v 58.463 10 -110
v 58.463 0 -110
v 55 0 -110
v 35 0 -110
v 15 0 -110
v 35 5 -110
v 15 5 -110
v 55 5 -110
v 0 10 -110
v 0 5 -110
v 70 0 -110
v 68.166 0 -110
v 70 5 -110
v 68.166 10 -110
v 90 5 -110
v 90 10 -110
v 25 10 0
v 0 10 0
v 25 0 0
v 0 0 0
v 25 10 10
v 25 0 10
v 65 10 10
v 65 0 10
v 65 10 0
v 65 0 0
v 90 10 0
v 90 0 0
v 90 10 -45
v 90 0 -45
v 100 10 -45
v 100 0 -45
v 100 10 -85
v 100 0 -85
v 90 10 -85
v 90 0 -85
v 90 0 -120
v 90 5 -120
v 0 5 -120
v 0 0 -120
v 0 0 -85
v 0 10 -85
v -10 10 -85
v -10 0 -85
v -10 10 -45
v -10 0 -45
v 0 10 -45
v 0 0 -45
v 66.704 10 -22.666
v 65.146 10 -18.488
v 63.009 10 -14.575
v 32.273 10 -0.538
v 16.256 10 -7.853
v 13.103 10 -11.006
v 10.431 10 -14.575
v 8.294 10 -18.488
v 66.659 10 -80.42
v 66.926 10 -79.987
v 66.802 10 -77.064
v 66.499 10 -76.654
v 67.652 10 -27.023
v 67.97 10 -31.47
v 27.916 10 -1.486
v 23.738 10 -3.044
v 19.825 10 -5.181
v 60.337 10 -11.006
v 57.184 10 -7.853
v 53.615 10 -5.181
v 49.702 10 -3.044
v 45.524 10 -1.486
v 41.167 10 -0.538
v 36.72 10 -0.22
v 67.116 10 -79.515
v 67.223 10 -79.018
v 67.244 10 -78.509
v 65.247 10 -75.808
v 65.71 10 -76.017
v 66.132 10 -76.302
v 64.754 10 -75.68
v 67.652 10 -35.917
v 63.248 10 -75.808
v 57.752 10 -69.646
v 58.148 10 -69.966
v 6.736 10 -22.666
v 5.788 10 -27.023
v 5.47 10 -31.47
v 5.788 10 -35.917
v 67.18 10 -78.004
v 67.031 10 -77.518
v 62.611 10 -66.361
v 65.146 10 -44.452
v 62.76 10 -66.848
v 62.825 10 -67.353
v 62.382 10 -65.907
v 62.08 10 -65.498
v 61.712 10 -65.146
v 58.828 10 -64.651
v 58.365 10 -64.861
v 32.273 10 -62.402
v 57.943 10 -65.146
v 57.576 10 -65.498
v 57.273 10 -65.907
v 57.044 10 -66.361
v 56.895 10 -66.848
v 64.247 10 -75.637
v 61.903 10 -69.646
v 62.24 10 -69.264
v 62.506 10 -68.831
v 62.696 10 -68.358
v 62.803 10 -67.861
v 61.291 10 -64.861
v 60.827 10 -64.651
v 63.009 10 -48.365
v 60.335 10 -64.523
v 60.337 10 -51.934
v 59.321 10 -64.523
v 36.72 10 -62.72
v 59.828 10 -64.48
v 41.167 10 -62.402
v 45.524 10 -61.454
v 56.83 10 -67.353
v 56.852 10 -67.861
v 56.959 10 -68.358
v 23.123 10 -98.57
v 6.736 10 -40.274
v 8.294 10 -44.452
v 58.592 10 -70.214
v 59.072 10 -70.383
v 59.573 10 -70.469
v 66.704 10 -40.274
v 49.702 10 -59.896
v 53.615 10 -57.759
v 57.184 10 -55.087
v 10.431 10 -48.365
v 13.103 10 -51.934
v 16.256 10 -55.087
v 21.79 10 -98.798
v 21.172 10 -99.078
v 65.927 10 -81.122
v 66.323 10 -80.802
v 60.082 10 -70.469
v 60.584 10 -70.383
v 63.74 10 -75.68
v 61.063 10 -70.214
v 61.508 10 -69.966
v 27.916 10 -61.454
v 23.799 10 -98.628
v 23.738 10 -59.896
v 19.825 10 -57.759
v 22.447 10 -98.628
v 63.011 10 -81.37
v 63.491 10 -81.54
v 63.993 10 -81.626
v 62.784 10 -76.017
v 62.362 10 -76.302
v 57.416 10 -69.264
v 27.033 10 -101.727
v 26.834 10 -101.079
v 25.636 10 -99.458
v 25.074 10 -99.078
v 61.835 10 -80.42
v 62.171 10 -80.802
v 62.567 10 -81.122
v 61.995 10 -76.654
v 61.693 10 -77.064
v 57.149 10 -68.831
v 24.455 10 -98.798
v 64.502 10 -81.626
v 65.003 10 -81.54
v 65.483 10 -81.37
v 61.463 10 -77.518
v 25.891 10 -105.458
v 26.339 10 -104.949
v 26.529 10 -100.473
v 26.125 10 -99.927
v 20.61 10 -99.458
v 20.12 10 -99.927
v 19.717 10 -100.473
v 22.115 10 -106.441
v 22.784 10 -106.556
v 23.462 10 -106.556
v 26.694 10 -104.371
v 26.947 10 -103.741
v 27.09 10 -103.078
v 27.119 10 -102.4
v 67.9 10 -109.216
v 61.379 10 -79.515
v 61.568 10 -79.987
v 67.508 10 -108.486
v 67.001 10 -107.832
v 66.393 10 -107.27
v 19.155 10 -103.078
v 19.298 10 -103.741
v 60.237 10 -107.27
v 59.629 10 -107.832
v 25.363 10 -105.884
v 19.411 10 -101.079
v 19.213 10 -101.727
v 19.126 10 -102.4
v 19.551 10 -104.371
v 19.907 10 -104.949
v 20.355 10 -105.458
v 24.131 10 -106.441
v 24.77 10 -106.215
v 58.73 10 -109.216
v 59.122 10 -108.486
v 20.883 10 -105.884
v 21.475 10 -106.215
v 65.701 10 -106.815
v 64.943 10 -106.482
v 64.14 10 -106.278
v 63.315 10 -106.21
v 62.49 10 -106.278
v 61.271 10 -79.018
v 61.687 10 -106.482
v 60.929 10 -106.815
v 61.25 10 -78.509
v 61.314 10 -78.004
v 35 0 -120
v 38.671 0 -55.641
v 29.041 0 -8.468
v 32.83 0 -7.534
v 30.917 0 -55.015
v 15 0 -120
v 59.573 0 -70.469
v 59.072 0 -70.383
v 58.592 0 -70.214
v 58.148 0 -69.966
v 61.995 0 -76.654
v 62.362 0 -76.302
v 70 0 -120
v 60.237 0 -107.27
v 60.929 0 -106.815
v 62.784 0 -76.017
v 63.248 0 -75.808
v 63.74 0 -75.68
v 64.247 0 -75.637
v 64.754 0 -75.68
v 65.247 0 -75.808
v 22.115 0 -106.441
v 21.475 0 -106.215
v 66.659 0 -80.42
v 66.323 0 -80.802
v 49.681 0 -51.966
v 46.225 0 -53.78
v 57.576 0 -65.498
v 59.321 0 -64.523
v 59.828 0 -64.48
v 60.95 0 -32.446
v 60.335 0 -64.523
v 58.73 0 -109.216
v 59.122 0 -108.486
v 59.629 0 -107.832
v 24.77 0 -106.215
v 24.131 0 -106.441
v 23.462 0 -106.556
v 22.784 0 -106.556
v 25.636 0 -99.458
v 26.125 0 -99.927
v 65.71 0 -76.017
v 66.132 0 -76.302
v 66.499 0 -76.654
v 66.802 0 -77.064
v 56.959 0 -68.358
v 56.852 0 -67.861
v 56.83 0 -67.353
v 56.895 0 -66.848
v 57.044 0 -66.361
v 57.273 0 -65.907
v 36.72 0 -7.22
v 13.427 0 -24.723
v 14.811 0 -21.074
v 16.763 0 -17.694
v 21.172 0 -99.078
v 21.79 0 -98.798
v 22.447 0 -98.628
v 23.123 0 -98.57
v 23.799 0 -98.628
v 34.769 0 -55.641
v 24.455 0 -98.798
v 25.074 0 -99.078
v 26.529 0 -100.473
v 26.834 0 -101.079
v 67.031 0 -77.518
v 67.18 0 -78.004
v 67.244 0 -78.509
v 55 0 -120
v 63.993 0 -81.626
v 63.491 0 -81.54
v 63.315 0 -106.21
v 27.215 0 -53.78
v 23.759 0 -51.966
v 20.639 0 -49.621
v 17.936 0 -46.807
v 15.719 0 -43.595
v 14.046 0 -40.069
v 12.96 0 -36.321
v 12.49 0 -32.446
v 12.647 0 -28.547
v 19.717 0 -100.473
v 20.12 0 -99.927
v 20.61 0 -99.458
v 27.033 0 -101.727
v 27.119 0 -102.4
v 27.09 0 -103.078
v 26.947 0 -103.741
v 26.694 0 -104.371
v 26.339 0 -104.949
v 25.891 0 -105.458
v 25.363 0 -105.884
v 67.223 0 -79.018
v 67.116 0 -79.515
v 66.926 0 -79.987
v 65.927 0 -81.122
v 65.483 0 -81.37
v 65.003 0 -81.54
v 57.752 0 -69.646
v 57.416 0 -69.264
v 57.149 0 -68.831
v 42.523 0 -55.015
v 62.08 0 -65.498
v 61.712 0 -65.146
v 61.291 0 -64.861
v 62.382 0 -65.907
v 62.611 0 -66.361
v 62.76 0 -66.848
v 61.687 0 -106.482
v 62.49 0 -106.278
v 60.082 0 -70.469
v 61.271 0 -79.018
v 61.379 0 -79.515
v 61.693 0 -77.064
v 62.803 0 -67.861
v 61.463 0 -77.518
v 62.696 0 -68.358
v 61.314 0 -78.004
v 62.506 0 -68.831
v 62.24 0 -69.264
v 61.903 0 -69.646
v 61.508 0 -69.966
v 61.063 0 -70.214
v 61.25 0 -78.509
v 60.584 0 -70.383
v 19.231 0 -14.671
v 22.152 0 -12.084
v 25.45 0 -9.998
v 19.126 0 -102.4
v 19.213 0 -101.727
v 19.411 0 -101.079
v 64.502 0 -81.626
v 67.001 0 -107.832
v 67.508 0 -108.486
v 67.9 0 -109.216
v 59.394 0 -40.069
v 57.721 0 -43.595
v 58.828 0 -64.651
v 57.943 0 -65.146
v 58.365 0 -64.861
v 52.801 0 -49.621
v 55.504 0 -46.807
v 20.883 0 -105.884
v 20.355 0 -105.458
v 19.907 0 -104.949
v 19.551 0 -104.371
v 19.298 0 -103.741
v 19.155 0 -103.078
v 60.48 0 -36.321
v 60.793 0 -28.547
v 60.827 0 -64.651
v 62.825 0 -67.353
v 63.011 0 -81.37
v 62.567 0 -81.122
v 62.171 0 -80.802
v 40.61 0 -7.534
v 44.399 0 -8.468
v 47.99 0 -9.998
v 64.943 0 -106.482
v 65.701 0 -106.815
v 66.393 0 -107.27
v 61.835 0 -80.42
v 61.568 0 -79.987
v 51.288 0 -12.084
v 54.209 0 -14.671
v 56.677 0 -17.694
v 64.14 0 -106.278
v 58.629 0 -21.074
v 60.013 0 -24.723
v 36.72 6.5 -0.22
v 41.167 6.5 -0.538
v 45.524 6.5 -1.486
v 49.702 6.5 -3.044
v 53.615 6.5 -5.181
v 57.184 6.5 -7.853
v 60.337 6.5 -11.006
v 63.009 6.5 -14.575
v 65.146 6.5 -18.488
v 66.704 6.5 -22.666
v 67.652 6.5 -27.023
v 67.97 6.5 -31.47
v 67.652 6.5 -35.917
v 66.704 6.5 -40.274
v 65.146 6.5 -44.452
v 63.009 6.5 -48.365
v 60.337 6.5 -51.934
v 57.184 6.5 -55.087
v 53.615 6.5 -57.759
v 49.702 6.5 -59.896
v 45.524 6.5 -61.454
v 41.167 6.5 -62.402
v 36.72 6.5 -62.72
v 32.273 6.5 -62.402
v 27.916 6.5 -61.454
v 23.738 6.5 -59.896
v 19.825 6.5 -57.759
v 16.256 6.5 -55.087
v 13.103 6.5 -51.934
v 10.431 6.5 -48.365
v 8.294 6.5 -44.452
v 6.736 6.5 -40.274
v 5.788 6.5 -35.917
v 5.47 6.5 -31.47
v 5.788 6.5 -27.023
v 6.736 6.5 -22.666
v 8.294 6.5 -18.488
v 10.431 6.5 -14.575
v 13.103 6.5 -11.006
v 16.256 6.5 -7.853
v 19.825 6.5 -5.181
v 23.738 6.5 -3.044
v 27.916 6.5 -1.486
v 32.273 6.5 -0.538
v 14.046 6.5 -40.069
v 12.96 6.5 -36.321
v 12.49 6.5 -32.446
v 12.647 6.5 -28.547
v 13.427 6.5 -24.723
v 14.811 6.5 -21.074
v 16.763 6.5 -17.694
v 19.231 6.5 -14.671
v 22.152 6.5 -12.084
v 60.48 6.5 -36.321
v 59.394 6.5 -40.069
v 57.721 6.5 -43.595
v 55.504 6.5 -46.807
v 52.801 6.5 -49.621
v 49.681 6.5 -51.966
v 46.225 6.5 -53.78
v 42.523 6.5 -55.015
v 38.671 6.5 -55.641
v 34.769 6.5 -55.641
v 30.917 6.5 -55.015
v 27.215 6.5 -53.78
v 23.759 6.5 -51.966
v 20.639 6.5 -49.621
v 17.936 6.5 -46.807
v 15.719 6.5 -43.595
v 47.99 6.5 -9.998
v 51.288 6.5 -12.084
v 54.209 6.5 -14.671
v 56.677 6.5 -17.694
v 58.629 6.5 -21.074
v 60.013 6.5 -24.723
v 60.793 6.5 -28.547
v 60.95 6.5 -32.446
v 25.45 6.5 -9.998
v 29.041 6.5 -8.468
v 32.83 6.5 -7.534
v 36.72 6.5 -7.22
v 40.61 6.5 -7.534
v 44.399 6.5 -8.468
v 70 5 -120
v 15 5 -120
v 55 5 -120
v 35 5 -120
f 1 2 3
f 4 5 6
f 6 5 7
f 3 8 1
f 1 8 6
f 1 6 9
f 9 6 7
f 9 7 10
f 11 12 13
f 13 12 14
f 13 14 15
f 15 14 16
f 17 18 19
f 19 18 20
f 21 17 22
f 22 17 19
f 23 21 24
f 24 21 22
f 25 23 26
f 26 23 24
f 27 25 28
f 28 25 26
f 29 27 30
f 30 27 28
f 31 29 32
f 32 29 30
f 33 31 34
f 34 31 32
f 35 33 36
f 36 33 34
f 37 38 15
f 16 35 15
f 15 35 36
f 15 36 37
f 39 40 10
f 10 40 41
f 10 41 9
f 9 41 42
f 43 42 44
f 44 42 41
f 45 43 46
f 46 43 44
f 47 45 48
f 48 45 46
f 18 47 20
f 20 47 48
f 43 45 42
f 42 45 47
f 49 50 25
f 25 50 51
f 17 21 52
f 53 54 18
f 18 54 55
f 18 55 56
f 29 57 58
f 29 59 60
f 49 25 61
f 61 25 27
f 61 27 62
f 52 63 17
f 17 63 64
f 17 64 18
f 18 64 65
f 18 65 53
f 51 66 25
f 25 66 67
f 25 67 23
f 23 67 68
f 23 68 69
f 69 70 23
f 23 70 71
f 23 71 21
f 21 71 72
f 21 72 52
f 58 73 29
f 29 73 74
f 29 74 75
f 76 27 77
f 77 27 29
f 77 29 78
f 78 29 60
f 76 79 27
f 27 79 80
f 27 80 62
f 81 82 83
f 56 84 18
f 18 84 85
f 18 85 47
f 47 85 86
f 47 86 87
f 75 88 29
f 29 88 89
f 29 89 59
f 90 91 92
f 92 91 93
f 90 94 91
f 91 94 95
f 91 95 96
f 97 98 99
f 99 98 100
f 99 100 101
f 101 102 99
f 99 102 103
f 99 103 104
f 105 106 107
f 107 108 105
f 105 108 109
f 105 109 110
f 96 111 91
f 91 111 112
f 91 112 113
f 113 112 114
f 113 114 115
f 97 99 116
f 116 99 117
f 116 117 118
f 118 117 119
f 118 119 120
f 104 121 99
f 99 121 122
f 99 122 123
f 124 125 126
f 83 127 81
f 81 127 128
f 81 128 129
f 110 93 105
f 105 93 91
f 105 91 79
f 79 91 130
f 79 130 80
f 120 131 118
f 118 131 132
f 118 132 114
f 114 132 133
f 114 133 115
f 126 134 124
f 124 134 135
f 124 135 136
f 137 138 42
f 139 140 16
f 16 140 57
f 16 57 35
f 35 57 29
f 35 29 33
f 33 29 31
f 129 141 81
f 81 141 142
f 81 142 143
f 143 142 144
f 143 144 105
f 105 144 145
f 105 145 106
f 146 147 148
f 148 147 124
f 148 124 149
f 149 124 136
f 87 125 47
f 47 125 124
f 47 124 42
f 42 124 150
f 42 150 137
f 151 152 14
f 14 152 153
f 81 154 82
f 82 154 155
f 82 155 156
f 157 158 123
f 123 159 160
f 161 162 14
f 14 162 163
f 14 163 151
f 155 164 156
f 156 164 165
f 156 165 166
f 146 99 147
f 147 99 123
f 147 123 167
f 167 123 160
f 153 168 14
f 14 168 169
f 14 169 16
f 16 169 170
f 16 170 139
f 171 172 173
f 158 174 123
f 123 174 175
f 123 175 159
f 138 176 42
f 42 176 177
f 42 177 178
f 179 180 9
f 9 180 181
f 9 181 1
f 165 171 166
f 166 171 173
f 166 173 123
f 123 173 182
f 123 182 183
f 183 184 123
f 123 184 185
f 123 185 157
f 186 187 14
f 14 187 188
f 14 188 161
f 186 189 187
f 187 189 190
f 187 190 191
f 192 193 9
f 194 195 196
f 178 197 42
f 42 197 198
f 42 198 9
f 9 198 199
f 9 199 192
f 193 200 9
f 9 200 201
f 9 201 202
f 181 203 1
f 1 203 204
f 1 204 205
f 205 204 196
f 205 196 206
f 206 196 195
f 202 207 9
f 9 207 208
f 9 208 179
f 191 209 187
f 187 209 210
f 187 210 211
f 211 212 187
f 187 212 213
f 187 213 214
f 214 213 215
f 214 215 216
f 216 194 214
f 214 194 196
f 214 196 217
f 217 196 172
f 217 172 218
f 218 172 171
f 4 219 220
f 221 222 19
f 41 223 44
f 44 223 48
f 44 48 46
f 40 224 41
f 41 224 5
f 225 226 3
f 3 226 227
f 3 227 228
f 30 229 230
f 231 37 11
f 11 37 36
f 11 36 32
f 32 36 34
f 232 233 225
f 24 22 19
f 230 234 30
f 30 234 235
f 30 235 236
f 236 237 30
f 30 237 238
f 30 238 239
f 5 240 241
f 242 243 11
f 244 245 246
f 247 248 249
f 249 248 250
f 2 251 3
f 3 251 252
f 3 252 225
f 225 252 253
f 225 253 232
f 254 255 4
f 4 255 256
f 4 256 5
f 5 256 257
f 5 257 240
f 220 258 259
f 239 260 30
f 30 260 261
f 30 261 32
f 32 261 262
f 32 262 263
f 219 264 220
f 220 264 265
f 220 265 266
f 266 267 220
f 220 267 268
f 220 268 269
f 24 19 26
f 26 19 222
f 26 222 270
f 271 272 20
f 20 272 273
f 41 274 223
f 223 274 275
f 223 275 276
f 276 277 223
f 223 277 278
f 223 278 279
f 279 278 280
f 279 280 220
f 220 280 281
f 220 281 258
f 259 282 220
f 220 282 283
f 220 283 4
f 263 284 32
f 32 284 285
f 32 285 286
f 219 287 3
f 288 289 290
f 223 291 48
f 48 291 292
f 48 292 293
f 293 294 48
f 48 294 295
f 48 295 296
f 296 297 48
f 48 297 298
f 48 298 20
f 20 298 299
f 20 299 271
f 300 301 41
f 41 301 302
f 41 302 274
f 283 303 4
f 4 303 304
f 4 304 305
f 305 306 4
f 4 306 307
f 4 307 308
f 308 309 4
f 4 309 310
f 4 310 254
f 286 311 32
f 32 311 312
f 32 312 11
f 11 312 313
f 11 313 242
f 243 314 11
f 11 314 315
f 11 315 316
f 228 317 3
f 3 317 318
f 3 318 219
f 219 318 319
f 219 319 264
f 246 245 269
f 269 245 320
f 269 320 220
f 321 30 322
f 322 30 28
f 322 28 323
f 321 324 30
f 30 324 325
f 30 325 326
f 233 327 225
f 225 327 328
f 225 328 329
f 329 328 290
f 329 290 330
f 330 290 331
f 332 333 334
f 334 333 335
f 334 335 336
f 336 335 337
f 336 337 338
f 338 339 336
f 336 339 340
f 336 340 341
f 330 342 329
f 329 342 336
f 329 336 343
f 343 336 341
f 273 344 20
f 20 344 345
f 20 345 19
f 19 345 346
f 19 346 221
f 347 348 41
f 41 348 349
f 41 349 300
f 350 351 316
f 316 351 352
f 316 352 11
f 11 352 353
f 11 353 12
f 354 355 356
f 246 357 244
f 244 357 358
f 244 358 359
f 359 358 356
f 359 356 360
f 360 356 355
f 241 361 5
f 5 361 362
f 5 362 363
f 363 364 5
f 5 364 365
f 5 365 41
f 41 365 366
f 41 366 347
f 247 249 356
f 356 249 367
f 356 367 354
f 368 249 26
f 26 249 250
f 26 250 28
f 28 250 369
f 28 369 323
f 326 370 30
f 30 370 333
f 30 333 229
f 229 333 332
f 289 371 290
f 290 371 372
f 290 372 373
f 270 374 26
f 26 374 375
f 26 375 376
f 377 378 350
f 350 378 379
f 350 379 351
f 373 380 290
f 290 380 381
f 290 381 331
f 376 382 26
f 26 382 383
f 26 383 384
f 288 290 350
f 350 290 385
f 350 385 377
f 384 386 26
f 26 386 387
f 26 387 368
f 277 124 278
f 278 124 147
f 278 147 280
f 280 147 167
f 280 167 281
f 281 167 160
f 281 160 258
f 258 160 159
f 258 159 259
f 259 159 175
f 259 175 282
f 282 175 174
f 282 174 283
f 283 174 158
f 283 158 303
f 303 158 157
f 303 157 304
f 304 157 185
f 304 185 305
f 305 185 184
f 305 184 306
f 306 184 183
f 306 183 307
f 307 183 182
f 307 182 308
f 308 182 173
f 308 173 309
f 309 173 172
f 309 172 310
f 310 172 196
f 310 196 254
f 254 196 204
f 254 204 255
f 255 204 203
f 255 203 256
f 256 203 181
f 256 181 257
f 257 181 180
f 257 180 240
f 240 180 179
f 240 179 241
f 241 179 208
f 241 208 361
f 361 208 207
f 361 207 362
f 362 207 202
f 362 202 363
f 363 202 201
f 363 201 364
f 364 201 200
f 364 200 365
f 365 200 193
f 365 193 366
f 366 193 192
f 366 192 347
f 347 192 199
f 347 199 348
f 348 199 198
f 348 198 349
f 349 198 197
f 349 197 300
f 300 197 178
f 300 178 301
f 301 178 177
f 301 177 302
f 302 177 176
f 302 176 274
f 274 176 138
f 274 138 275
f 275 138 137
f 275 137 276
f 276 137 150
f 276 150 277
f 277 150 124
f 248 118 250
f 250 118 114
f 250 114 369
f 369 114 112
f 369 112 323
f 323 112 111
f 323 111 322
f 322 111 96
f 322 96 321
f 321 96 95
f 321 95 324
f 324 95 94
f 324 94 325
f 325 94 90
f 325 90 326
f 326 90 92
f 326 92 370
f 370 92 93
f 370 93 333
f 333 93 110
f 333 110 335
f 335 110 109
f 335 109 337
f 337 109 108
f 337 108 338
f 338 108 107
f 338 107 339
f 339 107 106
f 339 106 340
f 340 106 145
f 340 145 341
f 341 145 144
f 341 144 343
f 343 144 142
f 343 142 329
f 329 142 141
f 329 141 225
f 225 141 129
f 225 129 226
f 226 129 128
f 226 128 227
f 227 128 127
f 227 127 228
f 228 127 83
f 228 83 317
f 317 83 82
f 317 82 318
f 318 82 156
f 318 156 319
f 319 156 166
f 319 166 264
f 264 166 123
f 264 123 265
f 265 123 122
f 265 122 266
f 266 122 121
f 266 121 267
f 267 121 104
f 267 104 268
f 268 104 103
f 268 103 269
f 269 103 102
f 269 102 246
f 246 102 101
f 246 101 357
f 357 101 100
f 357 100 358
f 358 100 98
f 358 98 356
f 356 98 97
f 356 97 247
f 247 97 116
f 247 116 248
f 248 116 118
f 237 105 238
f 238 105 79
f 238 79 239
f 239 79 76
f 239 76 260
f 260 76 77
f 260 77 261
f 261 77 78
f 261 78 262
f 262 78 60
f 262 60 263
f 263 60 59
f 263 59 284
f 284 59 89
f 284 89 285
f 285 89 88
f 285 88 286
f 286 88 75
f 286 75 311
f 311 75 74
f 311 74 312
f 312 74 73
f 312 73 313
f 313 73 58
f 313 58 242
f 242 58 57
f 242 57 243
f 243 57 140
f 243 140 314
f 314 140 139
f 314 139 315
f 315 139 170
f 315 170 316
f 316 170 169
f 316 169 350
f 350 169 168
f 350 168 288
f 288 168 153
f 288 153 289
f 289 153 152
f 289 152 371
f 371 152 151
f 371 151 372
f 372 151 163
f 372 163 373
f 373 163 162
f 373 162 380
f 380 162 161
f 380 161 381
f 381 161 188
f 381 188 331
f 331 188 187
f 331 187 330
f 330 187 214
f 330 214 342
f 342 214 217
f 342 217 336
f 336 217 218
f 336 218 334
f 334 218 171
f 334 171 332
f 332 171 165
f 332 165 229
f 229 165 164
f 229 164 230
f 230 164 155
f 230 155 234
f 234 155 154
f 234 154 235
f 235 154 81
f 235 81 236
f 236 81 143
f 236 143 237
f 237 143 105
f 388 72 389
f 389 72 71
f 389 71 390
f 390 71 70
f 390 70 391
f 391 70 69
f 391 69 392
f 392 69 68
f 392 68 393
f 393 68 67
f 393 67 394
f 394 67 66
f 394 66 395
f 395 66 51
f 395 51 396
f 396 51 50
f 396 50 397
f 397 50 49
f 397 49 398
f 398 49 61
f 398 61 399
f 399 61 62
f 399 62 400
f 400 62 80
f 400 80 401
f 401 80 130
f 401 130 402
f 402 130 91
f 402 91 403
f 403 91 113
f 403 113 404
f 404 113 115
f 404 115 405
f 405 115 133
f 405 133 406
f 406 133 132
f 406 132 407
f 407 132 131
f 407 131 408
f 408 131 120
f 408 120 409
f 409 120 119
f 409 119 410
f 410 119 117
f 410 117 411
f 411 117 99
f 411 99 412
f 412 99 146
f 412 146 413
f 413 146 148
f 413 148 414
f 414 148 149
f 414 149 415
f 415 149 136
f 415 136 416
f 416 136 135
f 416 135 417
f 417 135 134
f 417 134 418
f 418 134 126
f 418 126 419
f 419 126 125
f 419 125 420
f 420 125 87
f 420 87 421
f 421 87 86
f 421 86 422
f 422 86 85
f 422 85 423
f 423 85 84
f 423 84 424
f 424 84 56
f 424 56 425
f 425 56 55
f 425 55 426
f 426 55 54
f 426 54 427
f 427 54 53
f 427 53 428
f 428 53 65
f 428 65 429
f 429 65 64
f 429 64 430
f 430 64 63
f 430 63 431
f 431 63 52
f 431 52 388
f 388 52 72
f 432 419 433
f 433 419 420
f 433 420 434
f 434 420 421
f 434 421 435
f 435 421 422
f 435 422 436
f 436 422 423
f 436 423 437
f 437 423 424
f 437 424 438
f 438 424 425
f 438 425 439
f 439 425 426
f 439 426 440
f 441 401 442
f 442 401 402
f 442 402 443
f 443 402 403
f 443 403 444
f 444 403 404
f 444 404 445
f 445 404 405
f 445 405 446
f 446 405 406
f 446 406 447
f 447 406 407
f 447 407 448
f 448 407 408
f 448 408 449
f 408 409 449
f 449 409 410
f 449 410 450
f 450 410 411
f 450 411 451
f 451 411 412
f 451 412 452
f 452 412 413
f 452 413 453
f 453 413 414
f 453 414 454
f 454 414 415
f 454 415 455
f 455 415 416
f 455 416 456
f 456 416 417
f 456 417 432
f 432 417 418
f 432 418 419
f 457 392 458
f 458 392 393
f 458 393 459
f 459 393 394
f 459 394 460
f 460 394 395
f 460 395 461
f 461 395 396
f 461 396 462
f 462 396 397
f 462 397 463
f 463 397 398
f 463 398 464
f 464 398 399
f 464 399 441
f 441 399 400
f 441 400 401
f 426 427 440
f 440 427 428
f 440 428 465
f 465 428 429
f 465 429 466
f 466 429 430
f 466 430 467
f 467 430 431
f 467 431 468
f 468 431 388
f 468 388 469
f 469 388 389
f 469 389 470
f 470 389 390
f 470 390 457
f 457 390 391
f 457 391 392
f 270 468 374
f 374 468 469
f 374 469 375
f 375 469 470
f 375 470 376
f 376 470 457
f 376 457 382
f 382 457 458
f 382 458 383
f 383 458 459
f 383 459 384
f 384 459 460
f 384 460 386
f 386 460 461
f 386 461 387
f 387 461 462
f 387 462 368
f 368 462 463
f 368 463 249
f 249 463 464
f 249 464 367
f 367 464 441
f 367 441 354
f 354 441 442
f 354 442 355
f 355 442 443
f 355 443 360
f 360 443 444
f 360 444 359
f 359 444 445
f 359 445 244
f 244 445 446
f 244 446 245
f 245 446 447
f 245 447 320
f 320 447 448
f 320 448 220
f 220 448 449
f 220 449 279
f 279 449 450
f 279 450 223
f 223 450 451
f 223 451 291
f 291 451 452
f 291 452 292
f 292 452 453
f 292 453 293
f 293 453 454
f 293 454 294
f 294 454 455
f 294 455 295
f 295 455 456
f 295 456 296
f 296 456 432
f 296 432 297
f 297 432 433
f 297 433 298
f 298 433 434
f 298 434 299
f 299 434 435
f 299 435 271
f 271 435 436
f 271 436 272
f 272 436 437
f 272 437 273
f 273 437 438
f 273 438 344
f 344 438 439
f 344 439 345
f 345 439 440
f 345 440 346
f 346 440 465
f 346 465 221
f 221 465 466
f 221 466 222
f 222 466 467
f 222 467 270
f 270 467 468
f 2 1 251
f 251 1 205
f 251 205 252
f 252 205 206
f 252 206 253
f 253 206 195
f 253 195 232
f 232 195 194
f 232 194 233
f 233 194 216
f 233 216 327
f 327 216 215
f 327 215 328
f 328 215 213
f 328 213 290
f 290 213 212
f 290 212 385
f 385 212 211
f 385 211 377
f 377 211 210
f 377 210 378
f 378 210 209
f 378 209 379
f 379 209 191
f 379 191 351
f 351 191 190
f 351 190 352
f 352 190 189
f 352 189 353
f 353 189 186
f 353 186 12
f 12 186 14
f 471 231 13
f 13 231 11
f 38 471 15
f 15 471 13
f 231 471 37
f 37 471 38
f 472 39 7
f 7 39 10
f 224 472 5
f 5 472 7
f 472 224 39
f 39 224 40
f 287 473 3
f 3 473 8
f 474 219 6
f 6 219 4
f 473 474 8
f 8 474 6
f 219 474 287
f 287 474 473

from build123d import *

# Parameters (mm, degrees)
SKETCH1_W           = 90
SKETCH1_H           = 110
SKETCH1_W_2         = 10
SKETCH1_H_2         = 40
SKETCH1_W_3         = 40
SKETCH1_H_3         = 10
BOSS_EXTRUDE1_DEPTH = 10
SKETCH2_R           = 4
CUT_EXTRUDE1_DEPTH  = 149.996644258
CUT_EXTRUDE2_DEPTH  = 149.996644258
SKETCH4_R           = 31.25
CUT_EXTRUDE3_DEPTH  = 3.5
SKETCH5_R           = 24.25
CUT_EXTRUDE4_DEPTH  = 149.802721749
SKETCH6_R           = 5
CUT_EXTRUDE5_DEPTH  = 149.996644258
SKETCH8_W           = 20
SKETCH8_H           = 5
SKETCH8_W_2         = 15
BOSS_EXTRUDE2_DEPTH = 10


with BuildPart() as part:
    # Sketch1 → Boss-Extrude1 (new body)
    with BuildSketch(Plane(origin=(0, 0, 0), x_dir=(1, 0, 0), z_dir=(0, 1, 0))):
        with Locations((45, 55)):
            Rectangle(SKETCH1_W, SKETCH1_H)
        with Locations((-5, 65)):
            Rectangle(SKETCH1_W_2, SKETCH1_H_2)
        with Locations((95, 65)):
            Rectangle(SKETCH1_W_2, SKETCH1_H_2)
        with Locations((45, -5)):
            Rectangle(SKETCH1_W_3, SKETCH1_H_3)
    extrude(amount=BOSS_EXTRUDE1_DEPTH)

    # Sketch2 → Cut-Extrude1 (cut, through all)
    with BuildSketch(Plane(origin=(0, 10, 0), x_dir=(1, 0, 0), z_dir=(0, 1, 0))):
        with Locations(Location((23.122776972, 102.57, 0), (0, 0, 270))):
            Circle(SKETCH2_R)
        with Locations((23.122776972, 120.41)):
            Circle(SKETCH2_R)
    extrude(amount=-CUT_EXTRUDE1_DEPTH, mode=Mode.SUBTRACT)

    # Sketch3 → Cut-Extrude2 (cut, through all)
    with BuildSketch(Plane(origin=(0, 10, 0), x_dir=(1, 0, 0), z_dir=(0, 1, 0))):
        with BuildLine():
            ThreePointArc((65.351977614, 81.42565129), (61.457970709, 79.741397678), (63.142224321, 75.847390774))
            Line((63.142224321, 75.847390774), (65.351977614, 81.42565129))
        make_face()
        with BuildLine():
            Line((65.351977614, 81.42565129), (63.142224321, 75.847390774))
            ThreePointArc((63.142224321, 75.847390774), (65.93312737, 76.155127276), (67.247100967, 78.636521032))
            ThreePointArc((67.247100967, 78.636521032), (66.728494723, 80.322547434), (65.351977614, 81.42565129))
        make_face()
        with BuildLine():
            ThreePointArc((58.722717735, 64.690869742), (61.513620784, 64.998606245), (62.827594381, 67.48))
            Line((62.827594381, 67.48), (59.827594381, 67.48))
            Line((59.827594381, 67.48), (58.722717735, 64.690869742))
        make_face()
        with BuildLine():
            Line((59.827594381, 67.48), (62.827594381, 67.48))
            ThreePointArc((62.827594381, 67.48), (62.308988137, 69.166026403), (60.932471028, 70.269130258))
            Line((60.932471028, 70.269130258), (59.827594381, 67.48))
        make_face()
        with BuildLine():
            Line((58.722717735, 64.690869742), (59.827594381, 67.48))
            Line((59.827594381, 67.48), (56.827594381, 67.48))
            ThreePointArc((56.827594381, 67.48), (57.346200626, 65.793973597), (58.722717735, 64.690869742))
        make_face()
        with BuildLine():
            Line((56.827594381, 67.48), (59.827594381, 67.48))
            Line((59.827594381, 67.48), (60.932471028, 70.269130258))
            ThreePointArc((60.932471028, 70.269130258), (58.141567979, 69.961393755), (56.827594381, 67.48))
        make_face()
    extrude(amount=-CUT_EXTRUDE2_DEPTH, mode=Mode.SUBTRACT)

    # Sketch4 → Cut-Extrude3 (cut)
    with BuildSketch(Plane(origin=(0, 10, 0), x_dir=(1, 0, 0), z_dir=(0, 1, 0))):
        with Locations(Location((36.72, 31.47, 0), (0, 0, 270))):
            Circle(SKETCH4_R)
    extrude(amount=-CUT_EXTRUDE3_DEPTH, mode=Mode.SUBTRACT)

    # Sketch5 → Cut-Extrude4 (cut, through all)
    with BuildSketch(Plane(origin=(0, 6.5, 0), x_dir=(1, 0, 0), z_dir=(0, 1, 0))):
        with Locations(Location((36.72, 31.47, 0), (0, 0, 270))):
            Circle(SKETCH5_R)
    extrude(amount=-CUT_EXTRUDE4_DEPTH, mode=Mode.SUBTRACT)

    # Sketch6 → Cut-Extrude5 (cut, through all)
    with BuildSketch(Plane(origin=(0, 10, 0), x_dir=(1, 0, 0), z_dir=(0, 1, 0))):
        with Locations((63.314917683, 111.209559188)):
            Circle(SKETCH6_R)
    extrude(amount=-CUT_EXTRUDE5_DEPTH, mode=Mode.SUBTRACT)

    # Sketch8 → Boss-Extrude2 (add)
    with BuildSketch(Plane(origin=(0, 0, -110), x_dir=(-1, 0, 0), z_dir=(0, 0, -1))):
        with Locations((-80, 2.5)):
            Rectangle(SKETCH8_W, SKETCH8_H)
        with Locations((-7.5, 2.5)):
            Rectangle(SKETCH8_W_2, SKETCH8_H)
        with Locations((-45, 2.5)):
            Rectangle(SKETCH8_W, SKETCH8_H)
    extrude(amount=BOSS_EXTRUDE2_DEPTH)


solid = part.part
